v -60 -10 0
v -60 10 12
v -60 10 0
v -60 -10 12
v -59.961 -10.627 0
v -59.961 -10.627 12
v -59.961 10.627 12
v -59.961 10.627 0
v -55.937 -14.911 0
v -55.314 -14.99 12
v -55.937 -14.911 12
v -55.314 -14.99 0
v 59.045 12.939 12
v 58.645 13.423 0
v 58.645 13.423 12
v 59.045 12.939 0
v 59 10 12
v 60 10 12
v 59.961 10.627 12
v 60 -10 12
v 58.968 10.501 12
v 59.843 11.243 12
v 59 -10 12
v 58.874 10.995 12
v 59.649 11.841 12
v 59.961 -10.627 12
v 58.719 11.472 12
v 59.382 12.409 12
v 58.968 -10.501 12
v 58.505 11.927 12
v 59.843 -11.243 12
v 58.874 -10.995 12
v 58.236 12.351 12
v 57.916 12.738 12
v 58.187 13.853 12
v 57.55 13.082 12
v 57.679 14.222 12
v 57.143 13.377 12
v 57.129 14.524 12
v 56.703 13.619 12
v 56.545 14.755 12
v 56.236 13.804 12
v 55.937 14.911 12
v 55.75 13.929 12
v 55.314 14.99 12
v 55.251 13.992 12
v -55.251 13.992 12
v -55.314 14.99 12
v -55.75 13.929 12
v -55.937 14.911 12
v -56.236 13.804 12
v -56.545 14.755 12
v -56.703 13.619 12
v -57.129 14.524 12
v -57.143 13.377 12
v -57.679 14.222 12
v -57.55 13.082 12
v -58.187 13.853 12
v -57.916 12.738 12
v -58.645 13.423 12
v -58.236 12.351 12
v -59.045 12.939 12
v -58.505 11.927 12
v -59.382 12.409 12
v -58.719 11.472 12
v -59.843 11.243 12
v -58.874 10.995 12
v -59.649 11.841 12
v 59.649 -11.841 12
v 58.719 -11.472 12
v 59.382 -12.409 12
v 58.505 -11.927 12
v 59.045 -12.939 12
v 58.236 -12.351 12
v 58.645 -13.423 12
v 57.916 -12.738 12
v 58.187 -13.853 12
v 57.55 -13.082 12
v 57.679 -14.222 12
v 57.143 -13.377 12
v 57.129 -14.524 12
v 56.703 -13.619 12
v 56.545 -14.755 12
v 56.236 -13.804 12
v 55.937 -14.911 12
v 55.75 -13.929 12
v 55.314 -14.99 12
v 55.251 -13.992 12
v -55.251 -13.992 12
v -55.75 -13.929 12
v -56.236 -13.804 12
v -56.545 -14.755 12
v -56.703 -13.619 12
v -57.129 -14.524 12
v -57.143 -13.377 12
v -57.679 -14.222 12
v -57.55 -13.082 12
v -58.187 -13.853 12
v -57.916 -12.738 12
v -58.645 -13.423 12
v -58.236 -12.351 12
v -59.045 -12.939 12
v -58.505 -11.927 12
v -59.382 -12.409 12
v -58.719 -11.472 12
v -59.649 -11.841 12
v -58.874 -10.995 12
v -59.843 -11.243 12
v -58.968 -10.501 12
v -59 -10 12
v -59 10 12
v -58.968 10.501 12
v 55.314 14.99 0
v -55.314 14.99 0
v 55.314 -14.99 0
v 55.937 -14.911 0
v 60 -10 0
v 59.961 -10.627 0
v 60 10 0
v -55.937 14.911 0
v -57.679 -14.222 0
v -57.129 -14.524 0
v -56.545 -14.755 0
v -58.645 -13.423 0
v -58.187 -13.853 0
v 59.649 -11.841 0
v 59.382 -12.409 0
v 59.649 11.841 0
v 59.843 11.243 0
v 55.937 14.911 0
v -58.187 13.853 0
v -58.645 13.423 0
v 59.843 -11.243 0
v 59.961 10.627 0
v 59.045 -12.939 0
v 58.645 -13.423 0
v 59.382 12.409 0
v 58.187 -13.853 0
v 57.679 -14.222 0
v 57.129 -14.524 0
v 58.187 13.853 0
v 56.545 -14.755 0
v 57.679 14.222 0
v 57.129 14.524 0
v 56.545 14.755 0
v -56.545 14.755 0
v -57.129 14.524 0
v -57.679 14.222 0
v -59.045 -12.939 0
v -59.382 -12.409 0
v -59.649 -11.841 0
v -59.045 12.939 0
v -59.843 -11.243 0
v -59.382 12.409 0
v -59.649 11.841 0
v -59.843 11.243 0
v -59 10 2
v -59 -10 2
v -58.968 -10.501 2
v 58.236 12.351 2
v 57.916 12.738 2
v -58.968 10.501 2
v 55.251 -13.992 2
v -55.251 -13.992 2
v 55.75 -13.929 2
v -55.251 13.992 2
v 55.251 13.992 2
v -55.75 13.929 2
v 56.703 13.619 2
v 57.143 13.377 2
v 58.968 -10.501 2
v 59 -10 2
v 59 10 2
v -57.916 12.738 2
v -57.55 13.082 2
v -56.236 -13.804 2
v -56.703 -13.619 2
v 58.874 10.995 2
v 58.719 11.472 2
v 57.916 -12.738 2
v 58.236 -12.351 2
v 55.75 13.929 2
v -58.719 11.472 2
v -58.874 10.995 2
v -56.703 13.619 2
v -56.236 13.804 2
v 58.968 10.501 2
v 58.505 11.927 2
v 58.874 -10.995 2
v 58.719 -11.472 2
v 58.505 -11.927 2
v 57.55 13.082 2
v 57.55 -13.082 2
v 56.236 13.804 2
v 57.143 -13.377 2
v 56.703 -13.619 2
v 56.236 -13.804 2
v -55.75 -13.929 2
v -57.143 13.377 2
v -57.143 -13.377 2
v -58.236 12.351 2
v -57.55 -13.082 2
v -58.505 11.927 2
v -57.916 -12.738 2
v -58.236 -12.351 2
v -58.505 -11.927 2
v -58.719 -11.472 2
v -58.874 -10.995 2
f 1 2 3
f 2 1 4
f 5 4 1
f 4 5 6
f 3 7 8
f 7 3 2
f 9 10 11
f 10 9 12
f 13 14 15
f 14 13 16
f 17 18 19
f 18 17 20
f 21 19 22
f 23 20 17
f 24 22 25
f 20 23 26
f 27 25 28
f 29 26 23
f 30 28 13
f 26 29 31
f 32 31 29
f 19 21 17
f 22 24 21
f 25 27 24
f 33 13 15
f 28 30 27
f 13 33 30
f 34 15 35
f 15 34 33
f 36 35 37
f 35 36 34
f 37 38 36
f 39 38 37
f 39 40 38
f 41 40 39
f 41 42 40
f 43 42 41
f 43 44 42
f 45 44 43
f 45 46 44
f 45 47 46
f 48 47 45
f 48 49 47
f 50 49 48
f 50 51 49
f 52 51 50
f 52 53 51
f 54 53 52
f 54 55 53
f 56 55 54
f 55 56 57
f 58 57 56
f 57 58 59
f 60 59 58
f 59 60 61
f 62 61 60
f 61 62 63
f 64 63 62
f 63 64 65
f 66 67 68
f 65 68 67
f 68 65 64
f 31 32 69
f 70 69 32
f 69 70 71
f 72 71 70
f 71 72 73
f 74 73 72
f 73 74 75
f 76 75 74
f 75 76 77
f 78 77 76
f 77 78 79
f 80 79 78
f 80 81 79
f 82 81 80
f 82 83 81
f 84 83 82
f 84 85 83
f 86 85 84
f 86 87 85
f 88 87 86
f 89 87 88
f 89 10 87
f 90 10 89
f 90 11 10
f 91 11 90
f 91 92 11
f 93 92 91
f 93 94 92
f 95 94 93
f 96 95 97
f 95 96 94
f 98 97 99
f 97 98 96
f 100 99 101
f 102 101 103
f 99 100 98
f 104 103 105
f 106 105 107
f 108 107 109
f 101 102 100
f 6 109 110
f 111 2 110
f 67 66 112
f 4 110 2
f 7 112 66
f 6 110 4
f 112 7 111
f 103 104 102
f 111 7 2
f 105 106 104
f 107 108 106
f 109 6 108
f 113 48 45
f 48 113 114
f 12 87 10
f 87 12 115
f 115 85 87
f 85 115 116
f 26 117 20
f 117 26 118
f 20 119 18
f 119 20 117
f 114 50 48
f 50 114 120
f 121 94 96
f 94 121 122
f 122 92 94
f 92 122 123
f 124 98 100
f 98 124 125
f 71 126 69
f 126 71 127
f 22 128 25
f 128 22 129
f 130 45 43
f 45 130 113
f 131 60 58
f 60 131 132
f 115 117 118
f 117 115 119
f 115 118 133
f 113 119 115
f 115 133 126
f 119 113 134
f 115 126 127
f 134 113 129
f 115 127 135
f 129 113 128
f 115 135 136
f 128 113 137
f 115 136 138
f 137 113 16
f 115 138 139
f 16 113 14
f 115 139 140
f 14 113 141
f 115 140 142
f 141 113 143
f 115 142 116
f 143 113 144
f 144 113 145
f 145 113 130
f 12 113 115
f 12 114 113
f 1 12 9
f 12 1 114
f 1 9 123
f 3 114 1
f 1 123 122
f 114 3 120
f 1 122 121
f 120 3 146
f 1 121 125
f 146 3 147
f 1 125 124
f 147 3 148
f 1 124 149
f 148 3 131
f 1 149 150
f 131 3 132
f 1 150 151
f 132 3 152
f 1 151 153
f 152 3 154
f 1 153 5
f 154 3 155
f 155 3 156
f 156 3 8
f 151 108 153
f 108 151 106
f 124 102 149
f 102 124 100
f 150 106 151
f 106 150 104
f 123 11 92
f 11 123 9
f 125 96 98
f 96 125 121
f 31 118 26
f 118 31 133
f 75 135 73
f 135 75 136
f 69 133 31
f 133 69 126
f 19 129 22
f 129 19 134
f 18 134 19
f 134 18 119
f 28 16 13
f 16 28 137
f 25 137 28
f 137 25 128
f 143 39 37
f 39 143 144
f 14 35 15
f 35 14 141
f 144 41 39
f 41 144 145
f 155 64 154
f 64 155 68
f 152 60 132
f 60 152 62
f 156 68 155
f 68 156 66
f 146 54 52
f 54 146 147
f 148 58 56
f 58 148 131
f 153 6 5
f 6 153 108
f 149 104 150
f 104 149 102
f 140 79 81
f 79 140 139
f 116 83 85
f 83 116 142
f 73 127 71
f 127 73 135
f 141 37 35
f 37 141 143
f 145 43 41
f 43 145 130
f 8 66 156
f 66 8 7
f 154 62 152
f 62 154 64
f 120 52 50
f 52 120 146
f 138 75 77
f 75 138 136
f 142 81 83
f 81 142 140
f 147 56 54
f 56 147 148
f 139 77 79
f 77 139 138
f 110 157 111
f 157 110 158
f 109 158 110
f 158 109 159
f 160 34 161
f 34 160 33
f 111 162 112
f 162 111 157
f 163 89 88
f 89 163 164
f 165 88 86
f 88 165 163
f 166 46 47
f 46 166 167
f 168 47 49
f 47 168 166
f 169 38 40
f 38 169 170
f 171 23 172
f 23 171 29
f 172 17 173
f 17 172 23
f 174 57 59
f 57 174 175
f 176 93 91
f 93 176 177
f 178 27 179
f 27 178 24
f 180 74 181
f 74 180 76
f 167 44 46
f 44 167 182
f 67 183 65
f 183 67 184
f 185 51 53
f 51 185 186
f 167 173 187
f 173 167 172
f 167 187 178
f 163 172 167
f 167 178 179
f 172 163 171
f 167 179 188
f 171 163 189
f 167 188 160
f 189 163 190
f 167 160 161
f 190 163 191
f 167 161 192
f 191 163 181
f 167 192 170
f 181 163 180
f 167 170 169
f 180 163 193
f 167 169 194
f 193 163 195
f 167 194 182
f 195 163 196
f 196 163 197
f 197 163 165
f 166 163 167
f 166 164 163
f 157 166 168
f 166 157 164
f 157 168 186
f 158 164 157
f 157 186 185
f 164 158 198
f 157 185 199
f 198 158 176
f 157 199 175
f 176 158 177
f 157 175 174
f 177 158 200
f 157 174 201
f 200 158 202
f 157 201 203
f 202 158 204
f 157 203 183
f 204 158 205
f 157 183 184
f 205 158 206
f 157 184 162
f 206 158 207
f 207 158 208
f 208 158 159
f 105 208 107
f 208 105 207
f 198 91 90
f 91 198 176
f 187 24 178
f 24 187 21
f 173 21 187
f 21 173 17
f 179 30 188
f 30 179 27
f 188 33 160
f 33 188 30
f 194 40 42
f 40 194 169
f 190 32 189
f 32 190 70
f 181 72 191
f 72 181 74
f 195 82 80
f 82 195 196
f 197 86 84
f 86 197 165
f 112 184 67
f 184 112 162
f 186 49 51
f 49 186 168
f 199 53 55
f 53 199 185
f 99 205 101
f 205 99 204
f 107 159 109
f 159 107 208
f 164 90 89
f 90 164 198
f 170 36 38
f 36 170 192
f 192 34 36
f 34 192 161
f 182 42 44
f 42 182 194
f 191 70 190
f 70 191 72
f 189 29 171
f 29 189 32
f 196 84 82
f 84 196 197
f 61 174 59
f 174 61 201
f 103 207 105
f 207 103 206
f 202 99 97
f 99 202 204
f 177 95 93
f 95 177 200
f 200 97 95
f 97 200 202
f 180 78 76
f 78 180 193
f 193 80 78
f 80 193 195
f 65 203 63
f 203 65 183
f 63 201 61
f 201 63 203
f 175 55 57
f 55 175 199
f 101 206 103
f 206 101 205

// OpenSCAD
$fn = 50;


difference() {
	union() {
		hull() {
			translate(v = [-55.0000000000, 10.0000000000, 0]) {
				cylinder(h = 12, r = 5);
			}
			translate(v = [55.0000000000, 10.0000000000, 0]) {
				cylinder(h = 12, r = 5);
			}
			translate(v = [-55.0000000000, -10.0000000000, 0]) {
				cylinder(h = 12, r = 5);
			}
			translate(v = [55.0000000000, -10.0000000000, 0]) {
				cylinder(h = 12, r = 5);
			}
		}
	}
	union() {
		translate(v = [0, 0, 2]) {
			hull() {
				translate(v = [-55.0000000000, 10.0000000000, 0]) {
					cylinder(h = 10, r = 4);
				}
				translate(v = [55.0000000000, 10.0000000000, 0]) {
					cylinder(h = 10, r = 4);
				}
				translate(v = [-55.0000000000, -10.0000000000, 0]) {
					cylinder(h = 10, r = 4);
				}
				translate(v = [55.0000000000, -10.0000000000, 0]) {
					cylinder(h = 10, r = 4);
				}
			}
		}
	}
}
